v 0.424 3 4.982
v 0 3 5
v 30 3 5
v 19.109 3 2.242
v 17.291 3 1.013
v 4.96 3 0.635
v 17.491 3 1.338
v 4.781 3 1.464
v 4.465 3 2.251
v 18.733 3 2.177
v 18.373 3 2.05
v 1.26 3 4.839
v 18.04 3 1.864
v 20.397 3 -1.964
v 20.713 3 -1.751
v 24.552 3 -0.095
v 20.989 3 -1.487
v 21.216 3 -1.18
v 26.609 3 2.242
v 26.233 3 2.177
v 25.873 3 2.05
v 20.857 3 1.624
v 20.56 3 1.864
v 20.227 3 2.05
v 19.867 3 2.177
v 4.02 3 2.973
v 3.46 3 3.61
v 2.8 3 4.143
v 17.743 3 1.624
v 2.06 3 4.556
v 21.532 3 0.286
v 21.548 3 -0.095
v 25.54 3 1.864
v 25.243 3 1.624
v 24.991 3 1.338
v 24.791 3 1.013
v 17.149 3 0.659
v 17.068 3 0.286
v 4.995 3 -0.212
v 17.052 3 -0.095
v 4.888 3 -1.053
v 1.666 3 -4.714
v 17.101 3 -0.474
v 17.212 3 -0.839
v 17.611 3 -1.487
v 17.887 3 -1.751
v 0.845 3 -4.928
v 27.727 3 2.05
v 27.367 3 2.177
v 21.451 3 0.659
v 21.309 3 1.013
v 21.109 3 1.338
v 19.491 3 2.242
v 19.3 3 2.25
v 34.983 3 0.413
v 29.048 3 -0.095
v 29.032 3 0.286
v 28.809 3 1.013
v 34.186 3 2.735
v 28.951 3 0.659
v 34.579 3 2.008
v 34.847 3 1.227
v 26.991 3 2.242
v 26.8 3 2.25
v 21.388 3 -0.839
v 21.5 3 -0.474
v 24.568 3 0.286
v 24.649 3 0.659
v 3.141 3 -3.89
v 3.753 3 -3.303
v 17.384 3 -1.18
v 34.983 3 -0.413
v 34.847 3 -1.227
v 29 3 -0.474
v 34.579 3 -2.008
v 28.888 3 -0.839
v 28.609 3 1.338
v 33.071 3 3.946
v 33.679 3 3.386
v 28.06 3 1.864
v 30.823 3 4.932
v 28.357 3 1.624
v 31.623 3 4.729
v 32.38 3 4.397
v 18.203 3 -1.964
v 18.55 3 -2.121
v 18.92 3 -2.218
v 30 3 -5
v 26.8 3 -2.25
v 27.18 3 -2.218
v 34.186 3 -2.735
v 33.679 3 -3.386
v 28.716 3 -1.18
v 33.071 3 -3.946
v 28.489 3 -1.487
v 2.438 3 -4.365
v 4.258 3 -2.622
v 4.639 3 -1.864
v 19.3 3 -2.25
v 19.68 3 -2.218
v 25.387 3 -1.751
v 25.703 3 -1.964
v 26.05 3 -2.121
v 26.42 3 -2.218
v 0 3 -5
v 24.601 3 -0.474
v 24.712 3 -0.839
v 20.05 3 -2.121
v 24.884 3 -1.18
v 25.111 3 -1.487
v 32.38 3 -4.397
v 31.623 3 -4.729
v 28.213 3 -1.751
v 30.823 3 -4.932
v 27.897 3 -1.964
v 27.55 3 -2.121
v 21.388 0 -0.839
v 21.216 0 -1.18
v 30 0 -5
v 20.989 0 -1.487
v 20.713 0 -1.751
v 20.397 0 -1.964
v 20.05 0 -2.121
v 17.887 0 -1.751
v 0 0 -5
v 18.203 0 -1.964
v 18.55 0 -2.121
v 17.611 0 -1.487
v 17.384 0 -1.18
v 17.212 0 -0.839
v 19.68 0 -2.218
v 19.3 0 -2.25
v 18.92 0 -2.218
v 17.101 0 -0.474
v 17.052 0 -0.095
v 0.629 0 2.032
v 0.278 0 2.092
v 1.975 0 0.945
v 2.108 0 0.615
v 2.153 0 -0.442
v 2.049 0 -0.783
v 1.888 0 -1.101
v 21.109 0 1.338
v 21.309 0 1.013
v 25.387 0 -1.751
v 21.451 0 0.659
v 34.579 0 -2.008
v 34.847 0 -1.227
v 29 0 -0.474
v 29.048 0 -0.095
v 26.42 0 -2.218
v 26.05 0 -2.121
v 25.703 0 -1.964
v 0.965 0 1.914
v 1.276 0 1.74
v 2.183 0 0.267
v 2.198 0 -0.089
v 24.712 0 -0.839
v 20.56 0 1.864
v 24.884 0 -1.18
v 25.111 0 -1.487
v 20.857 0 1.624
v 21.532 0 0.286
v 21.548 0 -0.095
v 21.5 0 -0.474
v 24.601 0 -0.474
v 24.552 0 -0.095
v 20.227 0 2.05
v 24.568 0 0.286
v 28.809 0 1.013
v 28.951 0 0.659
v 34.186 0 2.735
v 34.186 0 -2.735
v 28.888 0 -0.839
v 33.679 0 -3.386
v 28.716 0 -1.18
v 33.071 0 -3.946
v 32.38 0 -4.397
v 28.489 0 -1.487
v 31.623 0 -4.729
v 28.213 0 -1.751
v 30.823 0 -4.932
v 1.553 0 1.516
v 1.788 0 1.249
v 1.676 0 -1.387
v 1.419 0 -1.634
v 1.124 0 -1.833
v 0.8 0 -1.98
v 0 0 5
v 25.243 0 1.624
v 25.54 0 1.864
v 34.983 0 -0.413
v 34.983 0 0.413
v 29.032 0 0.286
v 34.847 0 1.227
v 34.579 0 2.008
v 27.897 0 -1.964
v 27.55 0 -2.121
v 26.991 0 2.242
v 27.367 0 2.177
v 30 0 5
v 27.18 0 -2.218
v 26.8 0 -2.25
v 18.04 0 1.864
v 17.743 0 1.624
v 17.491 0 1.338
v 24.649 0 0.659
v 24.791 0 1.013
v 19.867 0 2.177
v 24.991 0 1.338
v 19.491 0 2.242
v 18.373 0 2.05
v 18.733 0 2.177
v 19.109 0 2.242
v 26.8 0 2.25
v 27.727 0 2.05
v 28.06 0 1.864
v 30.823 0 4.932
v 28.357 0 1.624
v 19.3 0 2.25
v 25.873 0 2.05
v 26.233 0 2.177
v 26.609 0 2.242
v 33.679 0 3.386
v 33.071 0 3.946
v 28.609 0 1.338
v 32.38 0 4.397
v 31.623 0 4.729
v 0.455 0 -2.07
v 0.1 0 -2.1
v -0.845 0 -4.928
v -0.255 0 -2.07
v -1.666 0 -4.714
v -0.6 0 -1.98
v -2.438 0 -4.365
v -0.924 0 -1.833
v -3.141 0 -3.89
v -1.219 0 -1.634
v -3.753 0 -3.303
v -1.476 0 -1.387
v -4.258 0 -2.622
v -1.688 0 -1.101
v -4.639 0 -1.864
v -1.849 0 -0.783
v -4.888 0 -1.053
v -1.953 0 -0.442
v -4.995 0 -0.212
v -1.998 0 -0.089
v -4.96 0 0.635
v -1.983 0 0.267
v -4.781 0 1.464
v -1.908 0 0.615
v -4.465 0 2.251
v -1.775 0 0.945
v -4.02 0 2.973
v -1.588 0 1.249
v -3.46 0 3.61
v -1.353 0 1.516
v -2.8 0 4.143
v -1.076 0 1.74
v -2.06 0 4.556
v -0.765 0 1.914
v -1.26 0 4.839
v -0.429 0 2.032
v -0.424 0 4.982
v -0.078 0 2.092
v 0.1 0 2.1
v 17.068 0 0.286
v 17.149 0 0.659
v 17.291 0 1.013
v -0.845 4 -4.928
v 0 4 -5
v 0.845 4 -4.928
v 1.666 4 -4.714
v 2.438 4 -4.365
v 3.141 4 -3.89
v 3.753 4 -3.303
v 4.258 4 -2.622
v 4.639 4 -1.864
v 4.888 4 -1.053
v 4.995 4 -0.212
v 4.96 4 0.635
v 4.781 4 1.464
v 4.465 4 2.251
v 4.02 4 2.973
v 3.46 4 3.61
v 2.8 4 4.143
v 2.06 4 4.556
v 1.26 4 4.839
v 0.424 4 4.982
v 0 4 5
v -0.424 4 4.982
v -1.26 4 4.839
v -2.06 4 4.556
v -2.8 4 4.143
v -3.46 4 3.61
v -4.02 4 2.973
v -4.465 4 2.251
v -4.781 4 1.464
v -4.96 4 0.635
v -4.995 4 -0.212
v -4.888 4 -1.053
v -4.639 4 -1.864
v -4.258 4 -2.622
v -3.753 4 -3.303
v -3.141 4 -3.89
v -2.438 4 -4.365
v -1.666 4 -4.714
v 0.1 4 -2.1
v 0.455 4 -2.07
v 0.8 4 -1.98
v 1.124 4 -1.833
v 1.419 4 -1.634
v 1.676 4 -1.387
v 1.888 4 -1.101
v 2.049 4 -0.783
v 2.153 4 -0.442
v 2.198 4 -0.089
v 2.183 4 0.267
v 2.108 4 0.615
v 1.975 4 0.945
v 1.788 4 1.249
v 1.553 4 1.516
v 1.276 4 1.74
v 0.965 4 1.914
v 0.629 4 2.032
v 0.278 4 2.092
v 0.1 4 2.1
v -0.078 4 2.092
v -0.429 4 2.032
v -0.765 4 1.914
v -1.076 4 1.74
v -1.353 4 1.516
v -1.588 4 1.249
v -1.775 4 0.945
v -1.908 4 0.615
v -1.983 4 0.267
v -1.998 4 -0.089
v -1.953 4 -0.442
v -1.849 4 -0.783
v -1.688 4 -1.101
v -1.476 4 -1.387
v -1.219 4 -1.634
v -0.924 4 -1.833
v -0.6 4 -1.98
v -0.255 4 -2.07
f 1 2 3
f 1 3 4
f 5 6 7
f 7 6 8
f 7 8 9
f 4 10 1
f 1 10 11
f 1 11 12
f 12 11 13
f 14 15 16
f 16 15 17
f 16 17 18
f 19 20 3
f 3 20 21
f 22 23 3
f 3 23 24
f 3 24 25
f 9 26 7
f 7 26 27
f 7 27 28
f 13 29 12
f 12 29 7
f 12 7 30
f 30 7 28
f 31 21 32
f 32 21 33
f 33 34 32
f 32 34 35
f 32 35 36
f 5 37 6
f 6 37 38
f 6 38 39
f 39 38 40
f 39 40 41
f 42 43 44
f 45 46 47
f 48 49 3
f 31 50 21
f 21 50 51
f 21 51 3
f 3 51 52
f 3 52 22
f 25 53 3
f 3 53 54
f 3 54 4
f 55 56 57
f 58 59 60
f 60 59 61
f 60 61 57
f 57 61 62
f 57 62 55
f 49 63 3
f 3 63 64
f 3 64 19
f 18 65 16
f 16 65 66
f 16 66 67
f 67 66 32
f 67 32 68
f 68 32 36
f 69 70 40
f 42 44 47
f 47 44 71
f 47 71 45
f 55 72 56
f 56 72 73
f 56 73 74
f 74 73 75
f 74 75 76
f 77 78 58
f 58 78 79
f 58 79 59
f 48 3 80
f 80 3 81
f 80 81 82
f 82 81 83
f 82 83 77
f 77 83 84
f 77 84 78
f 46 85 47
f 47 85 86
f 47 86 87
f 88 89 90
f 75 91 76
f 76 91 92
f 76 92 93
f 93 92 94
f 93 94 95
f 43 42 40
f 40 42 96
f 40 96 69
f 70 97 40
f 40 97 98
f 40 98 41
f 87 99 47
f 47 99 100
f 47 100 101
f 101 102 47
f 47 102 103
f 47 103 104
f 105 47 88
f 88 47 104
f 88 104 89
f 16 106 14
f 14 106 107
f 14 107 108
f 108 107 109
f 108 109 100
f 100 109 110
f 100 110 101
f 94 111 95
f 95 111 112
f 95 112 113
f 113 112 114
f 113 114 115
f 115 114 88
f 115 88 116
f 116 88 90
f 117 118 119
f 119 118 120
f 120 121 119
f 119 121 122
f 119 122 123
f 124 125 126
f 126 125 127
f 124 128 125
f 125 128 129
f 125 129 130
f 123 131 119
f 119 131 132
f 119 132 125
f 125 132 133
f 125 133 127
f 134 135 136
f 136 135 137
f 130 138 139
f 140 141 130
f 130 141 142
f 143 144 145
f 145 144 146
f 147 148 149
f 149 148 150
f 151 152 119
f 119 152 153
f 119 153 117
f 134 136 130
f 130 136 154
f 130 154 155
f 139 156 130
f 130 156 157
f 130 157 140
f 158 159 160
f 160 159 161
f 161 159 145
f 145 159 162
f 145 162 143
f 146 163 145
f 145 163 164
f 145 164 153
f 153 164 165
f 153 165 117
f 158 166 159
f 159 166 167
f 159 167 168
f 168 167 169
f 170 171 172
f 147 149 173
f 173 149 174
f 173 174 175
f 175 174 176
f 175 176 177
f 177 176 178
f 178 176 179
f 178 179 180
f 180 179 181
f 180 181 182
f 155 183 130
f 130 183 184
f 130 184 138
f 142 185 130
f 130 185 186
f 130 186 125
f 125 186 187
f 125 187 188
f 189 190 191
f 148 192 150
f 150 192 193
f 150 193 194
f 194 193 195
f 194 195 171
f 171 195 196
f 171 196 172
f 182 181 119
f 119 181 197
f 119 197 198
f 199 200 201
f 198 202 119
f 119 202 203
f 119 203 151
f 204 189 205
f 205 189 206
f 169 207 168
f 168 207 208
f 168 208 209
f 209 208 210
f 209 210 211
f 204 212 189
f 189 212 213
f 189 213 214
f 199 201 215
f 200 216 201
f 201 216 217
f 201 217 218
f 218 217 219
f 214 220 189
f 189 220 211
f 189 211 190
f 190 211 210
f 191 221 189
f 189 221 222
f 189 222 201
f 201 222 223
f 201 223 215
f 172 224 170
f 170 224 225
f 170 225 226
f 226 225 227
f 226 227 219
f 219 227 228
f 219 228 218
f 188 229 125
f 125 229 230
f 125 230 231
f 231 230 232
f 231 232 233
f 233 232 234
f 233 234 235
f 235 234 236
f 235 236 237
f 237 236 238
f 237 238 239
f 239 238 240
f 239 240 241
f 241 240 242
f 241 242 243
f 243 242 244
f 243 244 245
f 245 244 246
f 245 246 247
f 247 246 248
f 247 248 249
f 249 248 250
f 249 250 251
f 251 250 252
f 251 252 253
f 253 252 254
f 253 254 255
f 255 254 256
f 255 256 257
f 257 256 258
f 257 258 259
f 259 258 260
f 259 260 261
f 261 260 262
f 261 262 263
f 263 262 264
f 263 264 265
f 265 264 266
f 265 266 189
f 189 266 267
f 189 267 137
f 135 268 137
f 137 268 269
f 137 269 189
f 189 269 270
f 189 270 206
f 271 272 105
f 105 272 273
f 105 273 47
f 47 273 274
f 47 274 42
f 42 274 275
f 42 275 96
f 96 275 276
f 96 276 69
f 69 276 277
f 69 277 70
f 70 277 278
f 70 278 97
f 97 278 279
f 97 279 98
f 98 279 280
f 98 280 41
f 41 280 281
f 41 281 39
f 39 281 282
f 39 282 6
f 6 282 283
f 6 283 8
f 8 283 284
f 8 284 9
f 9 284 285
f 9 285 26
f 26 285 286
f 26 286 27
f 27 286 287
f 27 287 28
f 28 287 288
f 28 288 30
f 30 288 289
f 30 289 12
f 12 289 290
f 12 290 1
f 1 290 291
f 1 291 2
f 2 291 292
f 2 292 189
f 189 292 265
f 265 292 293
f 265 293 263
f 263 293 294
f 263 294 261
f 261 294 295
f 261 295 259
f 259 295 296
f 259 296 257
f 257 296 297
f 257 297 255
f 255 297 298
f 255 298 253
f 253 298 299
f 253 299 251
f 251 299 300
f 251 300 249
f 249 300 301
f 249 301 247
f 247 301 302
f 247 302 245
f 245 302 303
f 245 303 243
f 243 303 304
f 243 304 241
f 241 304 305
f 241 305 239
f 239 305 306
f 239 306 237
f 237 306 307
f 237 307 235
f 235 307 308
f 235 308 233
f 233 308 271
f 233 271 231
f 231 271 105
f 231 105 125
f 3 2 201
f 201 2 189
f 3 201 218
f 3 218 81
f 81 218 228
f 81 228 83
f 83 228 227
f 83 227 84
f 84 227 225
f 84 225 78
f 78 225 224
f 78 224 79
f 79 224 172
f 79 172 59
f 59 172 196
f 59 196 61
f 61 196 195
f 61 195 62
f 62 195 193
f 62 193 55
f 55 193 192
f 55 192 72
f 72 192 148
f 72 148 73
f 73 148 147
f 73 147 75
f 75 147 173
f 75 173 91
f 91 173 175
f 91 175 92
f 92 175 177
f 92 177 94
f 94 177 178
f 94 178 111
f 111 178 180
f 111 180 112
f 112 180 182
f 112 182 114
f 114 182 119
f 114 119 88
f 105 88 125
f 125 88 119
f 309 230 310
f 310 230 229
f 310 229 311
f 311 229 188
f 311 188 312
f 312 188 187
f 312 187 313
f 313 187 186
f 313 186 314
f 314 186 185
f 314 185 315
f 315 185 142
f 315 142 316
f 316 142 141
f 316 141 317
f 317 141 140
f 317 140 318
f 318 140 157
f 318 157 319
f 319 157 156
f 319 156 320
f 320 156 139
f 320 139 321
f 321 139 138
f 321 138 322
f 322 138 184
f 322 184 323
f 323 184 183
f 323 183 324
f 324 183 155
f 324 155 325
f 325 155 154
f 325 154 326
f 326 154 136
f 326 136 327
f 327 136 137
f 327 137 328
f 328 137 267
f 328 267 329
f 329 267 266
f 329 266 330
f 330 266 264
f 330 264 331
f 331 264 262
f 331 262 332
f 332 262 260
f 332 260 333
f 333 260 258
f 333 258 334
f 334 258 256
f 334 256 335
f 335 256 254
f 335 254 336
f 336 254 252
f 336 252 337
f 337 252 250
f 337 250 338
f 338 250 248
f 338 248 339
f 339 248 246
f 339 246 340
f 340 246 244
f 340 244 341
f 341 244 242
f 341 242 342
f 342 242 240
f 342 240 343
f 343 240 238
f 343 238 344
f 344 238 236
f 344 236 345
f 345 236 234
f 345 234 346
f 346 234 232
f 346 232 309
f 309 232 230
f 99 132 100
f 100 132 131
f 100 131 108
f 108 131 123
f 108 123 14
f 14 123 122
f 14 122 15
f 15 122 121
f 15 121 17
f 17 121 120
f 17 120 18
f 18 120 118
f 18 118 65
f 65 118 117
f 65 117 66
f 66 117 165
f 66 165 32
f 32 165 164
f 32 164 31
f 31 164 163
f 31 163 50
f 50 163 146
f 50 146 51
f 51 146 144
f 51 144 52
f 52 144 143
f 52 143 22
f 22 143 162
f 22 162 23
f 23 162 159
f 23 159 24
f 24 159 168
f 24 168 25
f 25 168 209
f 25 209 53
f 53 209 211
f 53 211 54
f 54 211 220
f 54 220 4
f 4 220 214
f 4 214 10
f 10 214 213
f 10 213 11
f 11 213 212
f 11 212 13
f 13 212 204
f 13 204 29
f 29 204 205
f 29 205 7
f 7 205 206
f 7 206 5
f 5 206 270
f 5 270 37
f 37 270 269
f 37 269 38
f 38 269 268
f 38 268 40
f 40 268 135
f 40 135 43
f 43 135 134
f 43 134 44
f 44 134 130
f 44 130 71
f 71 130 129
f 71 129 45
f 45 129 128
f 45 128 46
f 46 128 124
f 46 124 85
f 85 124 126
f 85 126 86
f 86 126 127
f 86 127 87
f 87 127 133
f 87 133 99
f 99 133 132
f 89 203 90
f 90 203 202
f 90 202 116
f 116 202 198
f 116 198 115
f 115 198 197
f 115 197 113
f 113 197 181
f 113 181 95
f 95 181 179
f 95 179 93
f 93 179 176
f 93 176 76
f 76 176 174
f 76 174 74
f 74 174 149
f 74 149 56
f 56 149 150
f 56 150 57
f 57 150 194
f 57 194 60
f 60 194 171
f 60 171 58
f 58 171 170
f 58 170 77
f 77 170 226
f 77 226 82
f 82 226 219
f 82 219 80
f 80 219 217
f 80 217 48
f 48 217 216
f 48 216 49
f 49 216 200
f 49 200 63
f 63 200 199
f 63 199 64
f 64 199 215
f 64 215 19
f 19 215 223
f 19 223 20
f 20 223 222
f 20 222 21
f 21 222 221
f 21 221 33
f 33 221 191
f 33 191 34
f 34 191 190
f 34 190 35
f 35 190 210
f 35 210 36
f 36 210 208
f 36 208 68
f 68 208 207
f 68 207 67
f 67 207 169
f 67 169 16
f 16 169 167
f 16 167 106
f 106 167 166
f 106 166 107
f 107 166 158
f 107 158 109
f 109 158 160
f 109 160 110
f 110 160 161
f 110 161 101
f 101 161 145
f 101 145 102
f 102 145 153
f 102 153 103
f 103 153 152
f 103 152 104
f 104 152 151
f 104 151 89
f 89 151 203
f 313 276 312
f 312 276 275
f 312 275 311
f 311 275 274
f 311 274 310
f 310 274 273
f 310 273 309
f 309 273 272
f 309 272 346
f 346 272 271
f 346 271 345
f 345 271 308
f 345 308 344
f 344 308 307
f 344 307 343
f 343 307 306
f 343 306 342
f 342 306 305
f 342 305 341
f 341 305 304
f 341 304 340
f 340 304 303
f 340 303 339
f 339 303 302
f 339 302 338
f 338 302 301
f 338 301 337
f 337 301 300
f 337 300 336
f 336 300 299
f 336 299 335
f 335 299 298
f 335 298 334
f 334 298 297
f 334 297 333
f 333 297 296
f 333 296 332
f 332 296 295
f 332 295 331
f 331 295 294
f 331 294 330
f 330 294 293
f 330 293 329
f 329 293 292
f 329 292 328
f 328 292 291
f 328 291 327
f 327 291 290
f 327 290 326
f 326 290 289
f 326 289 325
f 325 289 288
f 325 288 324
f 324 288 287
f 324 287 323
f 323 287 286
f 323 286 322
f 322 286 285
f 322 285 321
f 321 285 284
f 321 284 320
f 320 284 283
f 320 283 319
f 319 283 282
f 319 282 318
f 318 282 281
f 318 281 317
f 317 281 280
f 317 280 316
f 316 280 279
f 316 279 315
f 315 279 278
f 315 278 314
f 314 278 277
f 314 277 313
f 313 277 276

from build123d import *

# Parameters (mm, degrees)
SKETCH1_R           = 2.1
SKETCH1_R_2         = 2.25
BOSS_EXTRUDE1_DEPTH = 3
SKETCH3_R           = 5
SKETCH3_R_2         = 2.1
BOSS_EXTRUDE3_DEPTH = 1


with BuildPart() as part:
    # Sketch1 → Boss-Extrude1 (new body)
    with BuildSketch(Plane(origin=(0, 0, 0), x_dir=(1, 0, 0), z_dir=(0, 1, 0))):
        with BuildLine():
            Line((0, 5), (30, 5))
            ThreePointArc((30, 5), (35, 0), (30, -5))
            Line((30, -5), (0, -5))
            ThreePointArc((0, -5), (-5, 0), (0, 5))
        make_face()
        with Locations(Location((0.1, 0, 0), (0, 0, 270))):
            Circle(SKETCH1_R, mode=Mode.SUBTRACT)
        with Locations(Location((19.3, 0, 0), (0, 0, 270))):
            Circle(SKETCH1_R_2, mode=Mode.SUBTRACT)
        with Locations(Location((26.8, 0, 0), (0, 0, 270))):
            Circle(SKETCH1_R_2, mode=Mode.SUBTRACT)
    extrude(amount=BOSS_EXTRUDE1_DEPTH)

    # Sketch3 → Boss-Extrude3 (add)
    with BuildSketch(Plane(origin=(0, 3, 0), x_dir=(1, 0, 0), z_dir=(0, 1, 0))):
        with Locations(Location((0, 0, 0), (0, 0, 270))):
            Circle(SKETCH3_R)
        with Locations(Location((0.1, 0, 0), (0, 0, 270))):
            Circle(SKETCH3_R_2, mode=Mode.SUBTRACT)
    extrude(amount=BOSS_EXTRUDE3_DEPTH)


solid = part.part
